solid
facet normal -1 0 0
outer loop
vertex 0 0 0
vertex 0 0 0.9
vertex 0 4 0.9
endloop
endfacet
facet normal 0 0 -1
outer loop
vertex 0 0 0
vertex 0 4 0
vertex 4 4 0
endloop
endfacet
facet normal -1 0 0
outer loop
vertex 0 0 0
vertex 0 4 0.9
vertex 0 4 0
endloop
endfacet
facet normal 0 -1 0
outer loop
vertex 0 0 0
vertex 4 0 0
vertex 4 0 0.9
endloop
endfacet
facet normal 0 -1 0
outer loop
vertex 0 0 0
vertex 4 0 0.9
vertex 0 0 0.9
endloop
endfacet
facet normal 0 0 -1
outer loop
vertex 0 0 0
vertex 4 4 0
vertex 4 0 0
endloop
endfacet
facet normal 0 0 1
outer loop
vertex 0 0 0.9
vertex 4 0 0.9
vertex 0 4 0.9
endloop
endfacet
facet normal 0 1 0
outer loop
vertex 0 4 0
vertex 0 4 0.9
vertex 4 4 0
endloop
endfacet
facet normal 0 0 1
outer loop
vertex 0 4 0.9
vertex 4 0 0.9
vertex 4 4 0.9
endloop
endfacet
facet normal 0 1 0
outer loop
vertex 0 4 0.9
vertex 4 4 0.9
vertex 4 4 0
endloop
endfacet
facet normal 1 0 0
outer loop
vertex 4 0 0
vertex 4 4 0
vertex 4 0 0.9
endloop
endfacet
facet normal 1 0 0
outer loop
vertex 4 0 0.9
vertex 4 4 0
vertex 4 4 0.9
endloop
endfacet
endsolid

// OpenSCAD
/* Warning, this is a very basic generator with a lot of approximation 
input data : [QFN, GMX, 4x4x0.9mm, 20, , D, C04-00126D]
generated by com.zoubworld.electronics.cad.model3d.Basic
Date : Sun Feb 15 10:50:48 CET 2026
*/

//body
color("black")
translate([0,0,0])
cube([4.0,4.0,0.9], center=false);
